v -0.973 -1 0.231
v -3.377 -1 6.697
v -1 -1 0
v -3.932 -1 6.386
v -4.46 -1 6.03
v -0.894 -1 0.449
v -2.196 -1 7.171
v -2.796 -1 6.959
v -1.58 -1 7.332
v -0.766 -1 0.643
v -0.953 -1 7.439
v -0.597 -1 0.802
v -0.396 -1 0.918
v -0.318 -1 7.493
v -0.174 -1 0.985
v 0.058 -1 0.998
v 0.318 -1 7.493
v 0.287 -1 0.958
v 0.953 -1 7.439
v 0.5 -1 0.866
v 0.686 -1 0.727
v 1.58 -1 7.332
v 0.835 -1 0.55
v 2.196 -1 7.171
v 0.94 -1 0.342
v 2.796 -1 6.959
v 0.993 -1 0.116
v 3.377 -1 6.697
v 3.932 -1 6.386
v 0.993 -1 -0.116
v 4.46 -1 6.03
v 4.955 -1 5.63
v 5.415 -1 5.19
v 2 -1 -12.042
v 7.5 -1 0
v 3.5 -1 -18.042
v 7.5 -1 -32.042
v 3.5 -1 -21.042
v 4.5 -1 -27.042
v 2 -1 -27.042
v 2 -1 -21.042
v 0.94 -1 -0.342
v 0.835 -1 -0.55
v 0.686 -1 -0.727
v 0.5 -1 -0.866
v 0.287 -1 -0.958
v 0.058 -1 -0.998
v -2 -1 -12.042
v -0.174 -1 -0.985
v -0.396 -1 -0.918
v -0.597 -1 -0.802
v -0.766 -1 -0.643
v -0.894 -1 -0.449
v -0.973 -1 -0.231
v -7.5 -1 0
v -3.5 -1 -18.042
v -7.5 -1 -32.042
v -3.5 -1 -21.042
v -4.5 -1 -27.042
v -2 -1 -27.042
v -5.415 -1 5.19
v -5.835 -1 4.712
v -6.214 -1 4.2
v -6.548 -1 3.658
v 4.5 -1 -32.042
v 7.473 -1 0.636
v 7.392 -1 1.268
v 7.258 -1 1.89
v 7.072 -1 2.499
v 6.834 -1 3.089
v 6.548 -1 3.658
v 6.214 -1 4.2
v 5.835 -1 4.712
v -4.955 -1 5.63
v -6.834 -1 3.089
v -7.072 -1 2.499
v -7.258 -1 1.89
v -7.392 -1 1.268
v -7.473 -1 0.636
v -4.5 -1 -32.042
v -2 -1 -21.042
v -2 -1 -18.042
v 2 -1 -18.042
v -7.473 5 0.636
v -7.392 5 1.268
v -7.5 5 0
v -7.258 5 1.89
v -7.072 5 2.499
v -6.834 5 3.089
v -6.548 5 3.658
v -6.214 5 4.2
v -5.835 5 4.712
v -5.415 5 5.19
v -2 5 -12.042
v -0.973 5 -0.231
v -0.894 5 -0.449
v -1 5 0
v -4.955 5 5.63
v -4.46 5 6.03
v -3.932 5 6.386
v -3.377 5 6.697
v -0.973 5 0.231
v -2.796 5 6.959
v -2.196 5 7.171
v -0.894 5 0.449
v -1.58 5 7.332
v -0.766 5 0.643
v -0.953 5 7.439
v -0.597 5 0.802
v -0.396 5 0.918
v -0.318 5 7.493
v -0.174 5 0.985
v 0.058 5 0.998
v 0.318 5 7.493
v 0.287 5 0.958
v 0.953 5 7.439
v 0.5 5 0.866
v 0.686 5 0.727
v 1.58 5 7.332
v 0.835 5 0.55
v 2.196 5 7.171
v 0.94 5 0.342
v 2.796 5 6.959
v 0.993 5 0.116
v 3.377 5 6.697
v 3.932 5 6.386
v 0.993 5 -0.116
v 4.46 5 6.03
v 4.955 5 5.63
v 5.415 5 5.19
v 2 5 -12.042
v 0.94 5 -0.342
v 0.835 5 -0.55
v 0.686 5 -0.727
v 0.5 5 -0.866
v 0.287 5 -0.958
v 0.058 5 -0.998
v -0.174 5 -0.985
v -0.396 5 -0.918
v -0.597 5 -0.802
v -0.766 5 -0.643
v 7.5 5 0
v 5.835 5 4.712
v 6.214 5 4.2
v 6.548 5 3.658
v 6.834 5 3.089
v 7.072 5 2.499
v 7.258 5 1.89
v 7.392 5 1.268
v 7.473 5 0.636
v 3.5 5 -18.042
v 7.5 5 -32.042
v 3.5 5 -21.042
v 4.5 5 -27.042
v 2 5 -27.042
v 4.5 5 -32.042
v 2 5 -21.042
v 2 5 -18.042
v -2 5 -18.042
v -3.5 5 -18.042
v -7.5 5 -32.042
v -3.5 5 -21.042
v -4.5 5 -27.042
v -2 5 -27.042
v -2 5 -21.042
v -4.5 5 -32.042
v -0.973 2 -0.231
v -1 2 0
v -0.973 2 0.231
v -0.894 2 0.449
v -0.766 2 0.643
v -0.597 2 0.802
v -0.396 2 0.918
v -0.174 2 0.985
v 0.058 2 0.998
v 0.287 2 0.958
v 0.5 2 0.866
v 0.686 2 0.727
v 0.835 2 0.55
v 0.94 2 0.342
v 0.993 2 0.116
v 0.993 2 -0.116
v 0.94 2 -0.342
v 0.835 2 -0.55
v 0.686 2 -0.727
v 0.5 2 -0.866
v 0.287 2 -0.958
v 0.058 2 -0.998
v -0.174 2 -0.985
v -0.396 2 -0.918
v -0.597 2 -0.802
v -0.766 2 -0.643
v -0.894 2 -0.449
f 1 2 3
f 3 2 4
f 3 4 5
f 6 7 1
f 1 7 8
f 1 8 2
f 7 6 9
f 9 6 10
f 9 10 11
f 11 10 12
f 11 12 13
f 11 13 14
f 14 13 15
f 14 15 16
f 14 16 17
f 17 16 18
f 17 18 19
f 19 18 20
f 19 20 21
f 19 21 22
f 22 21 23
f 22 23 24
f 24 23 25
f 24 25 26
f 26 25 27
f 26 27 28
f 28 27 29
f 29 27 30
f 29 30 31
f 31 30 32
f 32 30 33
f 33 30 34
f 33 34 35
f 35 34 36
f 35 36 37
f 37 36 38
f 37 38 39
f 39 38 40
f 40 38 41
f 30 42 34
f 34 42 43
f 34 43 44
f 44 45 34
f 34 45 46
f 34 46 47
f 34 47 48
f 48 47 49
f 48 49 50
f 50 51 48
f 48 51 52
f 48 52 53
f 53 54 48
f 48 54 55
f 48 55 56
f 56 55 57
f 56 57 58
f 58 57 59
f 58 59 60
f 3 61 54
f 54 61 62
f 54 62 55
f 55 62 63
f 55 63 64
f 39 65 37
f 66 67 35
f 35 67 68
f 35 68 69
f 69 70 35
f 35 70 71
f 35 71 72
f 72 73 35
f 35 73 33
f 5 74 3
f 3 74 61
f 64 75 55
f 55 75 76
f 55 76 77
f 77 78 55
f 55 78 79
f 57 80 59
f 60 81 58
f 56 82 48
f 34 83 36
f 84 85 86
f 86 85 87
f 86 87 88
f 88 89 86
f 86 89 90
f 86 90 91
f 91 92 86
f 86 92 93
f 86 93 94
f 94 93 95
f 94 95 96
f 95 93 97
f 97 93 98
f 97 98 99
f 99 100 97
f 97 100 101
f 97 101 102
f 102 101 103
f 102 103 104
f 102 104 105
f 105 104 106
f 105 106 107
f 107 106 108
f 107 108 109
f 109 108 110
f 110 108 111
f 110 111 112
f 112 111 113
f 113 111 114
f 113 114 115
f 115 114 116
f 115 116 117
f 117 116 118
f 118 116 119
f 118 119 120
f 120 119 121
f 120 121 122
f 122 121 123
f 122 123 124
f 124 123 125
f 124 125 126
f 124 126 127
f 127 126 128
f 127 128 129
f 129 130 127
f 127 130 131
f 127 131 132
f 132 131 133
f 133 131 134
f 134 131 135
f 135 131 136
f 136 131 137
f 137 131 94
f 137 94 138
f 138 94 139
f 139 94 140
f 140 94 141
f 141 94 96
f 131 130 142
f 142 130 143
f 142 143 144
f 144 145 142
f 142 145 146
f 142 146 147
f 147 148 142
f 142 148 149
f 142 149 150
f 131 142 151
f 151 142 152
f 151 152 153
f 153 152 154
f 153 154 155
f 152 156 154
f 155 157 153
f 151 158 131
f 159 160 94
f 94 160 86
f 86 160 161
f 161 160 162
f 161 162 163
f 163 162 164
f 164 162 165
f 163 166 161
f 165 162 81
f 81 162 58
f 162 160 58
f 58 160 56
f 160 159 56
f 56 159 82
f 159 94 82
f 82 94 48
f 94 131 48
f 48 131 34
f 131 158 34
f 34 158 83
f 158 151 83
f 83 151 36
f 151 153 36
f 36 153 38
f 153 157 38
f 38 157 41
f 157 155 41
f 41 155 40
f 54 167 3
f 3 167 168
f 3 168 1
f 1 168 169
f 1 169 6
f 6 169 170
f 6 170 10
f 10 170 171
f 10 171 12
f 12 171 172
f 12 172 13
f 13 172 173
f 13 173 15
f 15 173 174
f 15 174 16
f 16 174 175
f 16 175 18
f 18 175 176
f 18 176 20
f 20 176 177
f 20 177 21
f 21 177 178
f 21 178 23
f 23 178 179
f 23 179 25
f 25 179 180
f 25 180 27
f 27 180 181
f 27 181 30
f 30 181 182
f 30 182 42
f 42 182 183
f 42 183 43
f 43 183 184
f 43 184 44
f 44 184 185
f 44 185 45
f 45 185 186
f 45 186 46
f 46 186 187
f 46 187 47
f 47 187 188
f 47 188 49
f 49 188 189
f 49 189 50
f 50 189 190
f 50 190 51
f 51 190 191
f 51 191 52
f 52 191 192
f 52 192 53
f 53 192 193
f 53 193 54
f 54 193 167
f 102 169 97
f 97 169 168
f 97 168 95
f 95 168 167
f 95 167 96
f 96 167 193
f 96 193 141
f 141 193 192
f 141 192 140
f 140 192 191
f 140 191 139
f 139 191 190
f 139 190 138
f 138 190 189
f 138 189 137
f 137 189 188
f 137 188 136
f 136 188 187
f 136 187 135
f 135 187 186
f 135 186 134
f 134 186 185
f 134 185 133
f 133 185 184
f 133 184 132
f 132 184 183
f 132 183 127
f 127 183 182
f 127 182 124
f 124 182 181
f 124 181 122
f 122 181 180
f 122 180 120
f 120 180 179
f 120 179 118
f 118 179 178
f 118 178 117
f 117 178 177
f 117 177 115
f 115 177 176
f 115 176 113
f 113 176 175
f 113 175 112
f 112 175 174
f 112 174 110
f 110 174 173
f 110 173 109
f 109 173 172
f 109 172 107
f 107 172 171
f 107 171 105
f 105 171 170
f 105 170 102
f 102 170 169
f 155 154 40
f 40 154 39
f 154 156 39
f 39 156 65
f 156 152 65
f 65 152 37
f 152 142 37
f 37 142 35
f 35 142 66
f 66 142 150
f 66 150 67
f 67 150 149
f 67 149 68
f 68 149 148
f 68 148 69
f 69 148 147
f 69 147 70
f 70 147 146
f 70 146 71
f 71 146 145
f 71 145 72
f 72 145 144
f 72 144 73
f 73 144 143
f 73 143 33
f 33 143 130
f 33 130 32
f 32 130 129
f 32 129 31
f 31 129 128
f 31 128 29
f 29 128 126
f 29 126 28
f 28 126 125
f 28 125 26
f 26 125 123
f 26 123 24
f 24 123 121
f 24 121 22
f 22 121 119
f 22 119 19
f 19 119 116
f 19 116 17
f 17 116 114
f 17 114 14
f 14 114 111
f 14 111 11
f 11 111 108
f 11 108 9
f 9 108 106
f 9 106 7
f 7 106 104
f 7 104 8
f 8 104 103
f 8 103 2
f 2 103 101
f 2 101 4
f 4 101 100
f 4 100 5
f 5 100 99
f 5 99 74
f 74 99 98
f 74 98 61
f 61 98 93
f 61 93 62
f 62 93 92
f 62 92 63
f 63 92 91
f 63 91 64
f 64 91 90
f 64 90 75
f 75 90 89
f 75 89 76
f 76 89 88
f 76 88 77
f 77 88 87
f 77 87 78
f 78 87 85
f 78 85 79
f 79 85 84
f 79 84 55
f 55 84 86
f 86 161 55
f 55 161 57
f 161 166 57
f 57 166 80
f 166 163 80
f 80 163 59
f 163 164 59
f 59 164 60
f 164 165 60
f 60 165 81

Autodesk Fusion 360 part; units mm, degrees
sketch "Sketch1" plane through (0, 0, 0) normal (0, 1, 0) x (1, 0, 0)
  circle A0 centre (0, 0) radius 28.5
  line L0 (-9, 27.0416) -> (9, 27.0416)
  line L1 (-27.3663, -7.9584) -> (-39.2742, -7.9584)
  line L2 (-49.2742, 2.0416) -> (-49.2742, 27.0416)
  line L3 (-49.2742, 27.0416) -> (-9, 27.0416)
  line L4 (-41.2742, 27.0416) -> (-34.2742, 27.0416)
  line L5 (-34.2742, 27.0416) -> (-34.2742, 2.0416)
  line L6 (-34.2742, 2.0416) -> (-41.2742, 2.0416)
  line L7 (-41.2742, 2.0416) -> (-41.2742, 27.0416)
  line L8 (-41.2742, 2.0416) -> (-49.2742, 2.0416)
  line L9 (-49.2742, 2.0416) -> (-34.2742, 2.0416)
  line L10 (-28.4268, 2.0416) -> (-34.2742, 2.0416)
  line L11 (-44.2742, 11.0416) -> (-31.2742, 11.0416)
  line L12 (-31.2742, 11.0416) -> (-31.2742, 18.0416)
  line L13 (-31.2742, 18.0416) -> (-44.2742, 18.0416)
  line L14 (-44.2742, 18.0416) -> (-44.2742, 11.0416)
  line L15 (-37.7742, 18.0416) -> (-37.7742, 27.0416)
  line L16 (-44.2742, 14.5416) -> (-41.2742, 14.5416)
  line L17 (-44.2742, 11.0416) -> (-49.2742, 11.0416)
  line L18 (-31.2742, 11.0416) -> (-26.2742, 11.0416)
  arc A1 (-49.2742, 2.0416) -> (-39.2742, -7.9584) centre (-39.2742, 2.0416) ccw
  line L19 (0, 27.0416) -> (0, 0)
  line L20 (27.3663, -7.9584) -> (39.2742, -7.9584)
  arc A2 (39.2742, -7.9584) -> (49.2742, 2.0416) centre (39.2742, 2.0416) ccw
  line L21 (49.2742, 2.0416) -> (49.2742, 27.0416)
  line L22 (49.2742, 27.0416) -> (9, 27.0416)
  line L23 (31.2742, 18.0416) -> (44.2742, 18.0416)
  line L24 (31.2742, 11.0416) -> (31.2742, 18.0416)
  line L25 (44.2742, 11.0416) -> (31.2742, 11.0416)
  line L26 (44.2742, 18.0416) -> (44.2742, 11.0416)
  line L27 (41.2742, 2.0416) -> (41.2742, 27.0416)
  line L28 (34.2742, 27.0416) -> (34.2742, 2.0416)
  line L29 (34.2742, 2.0416) -> (41.2742, 2.0416)
  circle A3 centre (0, 0) radius 1
  circle A4 centre (0, 0) radius 7.5
  line L30 (0, 0) -> (-7.5, 0)
  line L31 (-7.5, 0) -> (-7.5, 27.0416)
  line L32 (0, 0) -> (7.5, 0)
  line L33 (7.5, 0) -> (7.5, 27.0416)
  line L34 (-2, 27.0416) -> (2, 27.0416)
  line L35 (2, 27.0416) -> (2, 12.0416)
  line L36 (2, 12.0416) -> (-2, 12.0416)
  line L37 (-2, 12.0416) -> (-2, 27.0416)
  line L38 (-3.5, 18.0416) -> (3.5, 18.0416)
  line L39 (3.5, 18.0416) -> (3.5, 21.0416)
  line L40 (3.5, 21.0416) -> (-3.5, 21.0416)
  line L41 (-3.5, 21.0416) -> (-3.5, 18.0416)
  line L42 (-2, 19.5416) -> (-3.5, 19.5416)
  line L43 (-7.5, 27.0416) -> (-4.5, 27.0416)
  line L44 (-4.5, 27.0416) -> (-4.5, 32.0416)
  line L45 (-4.5, 32.0416) -> (-7.5, 32.0416)
  line L46 (-7.5, 32.0416) -> (-7.5, 27.0416)
  line L47 (7.5, 27.0416) -> (4.5, 27.0416)
  line L48 (4.5, 27.0416) -> (4.5, 32.0416)
  line L49 (4.5, 32.0416) -> (7.5, 32.0416)
  line L50 (7.5, 32.0416) -> (7.5, 27.0416)
  point P0 (0, 21.0416)
  point P1 (0, 27.0416)
  dimension "d1" = 57
  dimension "d2" = 18
  dimension "d3" = 25
  dimension "d4" = 90
  dimension "d5" = 10
  dimension "d8" = 7
  dimension "d9" = 7
  dimension "d10" = 13
  dimension "d11" = 90
  dimension "d12" = 90
  dimension "d13" = 5
  dimension "d14" = 5
  dimension "d15" = 10
  dimension "d18" = 2
  dimension "d19" = 15
  dimension "d20" = 4
  dimension "d21" = 15
  dimension "d22" = 3
  dimension "d23" = 7
  dimension "d24" = 90
  dimension "d25" = 5
  dimension "d26" = 5
  dimension "d27" = 3
  dimension "d28" = 3
extrude "Extrude1" add sketch "Sketch1" along normal blind 100 contours A0 L0 L47 L48 L50 | A0 L48 L49 L50 | L0 L19 A4 L33 L35 L36 L38 L39 L40 L47 | L19 A3 A4 L32 | A3 A4 L30 L32 | A0 L0 L43 L44 L46 | A0 L44 L45 L46 | L0 L19 A4 L31 L36 L37 L38 L40 L41 L43 | L19 A3 A4 L30
sketch "Sketch2" plane through (7.5, 0, 0) normal (1, 0, 0) x (0, 1, 0)
  line L0 (0, 0) -> (0, -32.0416)
  line L1 (0, -32.0416) -> (100, -32.0416)
  line L2 (100, -32.0416) -> (100, 0)
  line L3 (100, 0) -> (0, 0)
  line L4 (5, 16.673) -> (106.6592, 16.673)
  line L5 (106.6592, 16.673) -> (106.6592, -53.0106)
  line L6 (106.6592, -53.0106) -> (5, -53.0106)
  line L7 (5, -53.0106) -> (5, 16.673)
  dimension "d29" = 5
extrude "Extrude2" cut sketch "Sketch2" against normal blind 100 contours L1 L2 L3 L4 L5 L6 L7 | L1 L2 L3 L7
extrude "Extrude3" add 1 faces at (-3.3745, 0, -4.2745) along direction (0, -1, 0) blind 1
